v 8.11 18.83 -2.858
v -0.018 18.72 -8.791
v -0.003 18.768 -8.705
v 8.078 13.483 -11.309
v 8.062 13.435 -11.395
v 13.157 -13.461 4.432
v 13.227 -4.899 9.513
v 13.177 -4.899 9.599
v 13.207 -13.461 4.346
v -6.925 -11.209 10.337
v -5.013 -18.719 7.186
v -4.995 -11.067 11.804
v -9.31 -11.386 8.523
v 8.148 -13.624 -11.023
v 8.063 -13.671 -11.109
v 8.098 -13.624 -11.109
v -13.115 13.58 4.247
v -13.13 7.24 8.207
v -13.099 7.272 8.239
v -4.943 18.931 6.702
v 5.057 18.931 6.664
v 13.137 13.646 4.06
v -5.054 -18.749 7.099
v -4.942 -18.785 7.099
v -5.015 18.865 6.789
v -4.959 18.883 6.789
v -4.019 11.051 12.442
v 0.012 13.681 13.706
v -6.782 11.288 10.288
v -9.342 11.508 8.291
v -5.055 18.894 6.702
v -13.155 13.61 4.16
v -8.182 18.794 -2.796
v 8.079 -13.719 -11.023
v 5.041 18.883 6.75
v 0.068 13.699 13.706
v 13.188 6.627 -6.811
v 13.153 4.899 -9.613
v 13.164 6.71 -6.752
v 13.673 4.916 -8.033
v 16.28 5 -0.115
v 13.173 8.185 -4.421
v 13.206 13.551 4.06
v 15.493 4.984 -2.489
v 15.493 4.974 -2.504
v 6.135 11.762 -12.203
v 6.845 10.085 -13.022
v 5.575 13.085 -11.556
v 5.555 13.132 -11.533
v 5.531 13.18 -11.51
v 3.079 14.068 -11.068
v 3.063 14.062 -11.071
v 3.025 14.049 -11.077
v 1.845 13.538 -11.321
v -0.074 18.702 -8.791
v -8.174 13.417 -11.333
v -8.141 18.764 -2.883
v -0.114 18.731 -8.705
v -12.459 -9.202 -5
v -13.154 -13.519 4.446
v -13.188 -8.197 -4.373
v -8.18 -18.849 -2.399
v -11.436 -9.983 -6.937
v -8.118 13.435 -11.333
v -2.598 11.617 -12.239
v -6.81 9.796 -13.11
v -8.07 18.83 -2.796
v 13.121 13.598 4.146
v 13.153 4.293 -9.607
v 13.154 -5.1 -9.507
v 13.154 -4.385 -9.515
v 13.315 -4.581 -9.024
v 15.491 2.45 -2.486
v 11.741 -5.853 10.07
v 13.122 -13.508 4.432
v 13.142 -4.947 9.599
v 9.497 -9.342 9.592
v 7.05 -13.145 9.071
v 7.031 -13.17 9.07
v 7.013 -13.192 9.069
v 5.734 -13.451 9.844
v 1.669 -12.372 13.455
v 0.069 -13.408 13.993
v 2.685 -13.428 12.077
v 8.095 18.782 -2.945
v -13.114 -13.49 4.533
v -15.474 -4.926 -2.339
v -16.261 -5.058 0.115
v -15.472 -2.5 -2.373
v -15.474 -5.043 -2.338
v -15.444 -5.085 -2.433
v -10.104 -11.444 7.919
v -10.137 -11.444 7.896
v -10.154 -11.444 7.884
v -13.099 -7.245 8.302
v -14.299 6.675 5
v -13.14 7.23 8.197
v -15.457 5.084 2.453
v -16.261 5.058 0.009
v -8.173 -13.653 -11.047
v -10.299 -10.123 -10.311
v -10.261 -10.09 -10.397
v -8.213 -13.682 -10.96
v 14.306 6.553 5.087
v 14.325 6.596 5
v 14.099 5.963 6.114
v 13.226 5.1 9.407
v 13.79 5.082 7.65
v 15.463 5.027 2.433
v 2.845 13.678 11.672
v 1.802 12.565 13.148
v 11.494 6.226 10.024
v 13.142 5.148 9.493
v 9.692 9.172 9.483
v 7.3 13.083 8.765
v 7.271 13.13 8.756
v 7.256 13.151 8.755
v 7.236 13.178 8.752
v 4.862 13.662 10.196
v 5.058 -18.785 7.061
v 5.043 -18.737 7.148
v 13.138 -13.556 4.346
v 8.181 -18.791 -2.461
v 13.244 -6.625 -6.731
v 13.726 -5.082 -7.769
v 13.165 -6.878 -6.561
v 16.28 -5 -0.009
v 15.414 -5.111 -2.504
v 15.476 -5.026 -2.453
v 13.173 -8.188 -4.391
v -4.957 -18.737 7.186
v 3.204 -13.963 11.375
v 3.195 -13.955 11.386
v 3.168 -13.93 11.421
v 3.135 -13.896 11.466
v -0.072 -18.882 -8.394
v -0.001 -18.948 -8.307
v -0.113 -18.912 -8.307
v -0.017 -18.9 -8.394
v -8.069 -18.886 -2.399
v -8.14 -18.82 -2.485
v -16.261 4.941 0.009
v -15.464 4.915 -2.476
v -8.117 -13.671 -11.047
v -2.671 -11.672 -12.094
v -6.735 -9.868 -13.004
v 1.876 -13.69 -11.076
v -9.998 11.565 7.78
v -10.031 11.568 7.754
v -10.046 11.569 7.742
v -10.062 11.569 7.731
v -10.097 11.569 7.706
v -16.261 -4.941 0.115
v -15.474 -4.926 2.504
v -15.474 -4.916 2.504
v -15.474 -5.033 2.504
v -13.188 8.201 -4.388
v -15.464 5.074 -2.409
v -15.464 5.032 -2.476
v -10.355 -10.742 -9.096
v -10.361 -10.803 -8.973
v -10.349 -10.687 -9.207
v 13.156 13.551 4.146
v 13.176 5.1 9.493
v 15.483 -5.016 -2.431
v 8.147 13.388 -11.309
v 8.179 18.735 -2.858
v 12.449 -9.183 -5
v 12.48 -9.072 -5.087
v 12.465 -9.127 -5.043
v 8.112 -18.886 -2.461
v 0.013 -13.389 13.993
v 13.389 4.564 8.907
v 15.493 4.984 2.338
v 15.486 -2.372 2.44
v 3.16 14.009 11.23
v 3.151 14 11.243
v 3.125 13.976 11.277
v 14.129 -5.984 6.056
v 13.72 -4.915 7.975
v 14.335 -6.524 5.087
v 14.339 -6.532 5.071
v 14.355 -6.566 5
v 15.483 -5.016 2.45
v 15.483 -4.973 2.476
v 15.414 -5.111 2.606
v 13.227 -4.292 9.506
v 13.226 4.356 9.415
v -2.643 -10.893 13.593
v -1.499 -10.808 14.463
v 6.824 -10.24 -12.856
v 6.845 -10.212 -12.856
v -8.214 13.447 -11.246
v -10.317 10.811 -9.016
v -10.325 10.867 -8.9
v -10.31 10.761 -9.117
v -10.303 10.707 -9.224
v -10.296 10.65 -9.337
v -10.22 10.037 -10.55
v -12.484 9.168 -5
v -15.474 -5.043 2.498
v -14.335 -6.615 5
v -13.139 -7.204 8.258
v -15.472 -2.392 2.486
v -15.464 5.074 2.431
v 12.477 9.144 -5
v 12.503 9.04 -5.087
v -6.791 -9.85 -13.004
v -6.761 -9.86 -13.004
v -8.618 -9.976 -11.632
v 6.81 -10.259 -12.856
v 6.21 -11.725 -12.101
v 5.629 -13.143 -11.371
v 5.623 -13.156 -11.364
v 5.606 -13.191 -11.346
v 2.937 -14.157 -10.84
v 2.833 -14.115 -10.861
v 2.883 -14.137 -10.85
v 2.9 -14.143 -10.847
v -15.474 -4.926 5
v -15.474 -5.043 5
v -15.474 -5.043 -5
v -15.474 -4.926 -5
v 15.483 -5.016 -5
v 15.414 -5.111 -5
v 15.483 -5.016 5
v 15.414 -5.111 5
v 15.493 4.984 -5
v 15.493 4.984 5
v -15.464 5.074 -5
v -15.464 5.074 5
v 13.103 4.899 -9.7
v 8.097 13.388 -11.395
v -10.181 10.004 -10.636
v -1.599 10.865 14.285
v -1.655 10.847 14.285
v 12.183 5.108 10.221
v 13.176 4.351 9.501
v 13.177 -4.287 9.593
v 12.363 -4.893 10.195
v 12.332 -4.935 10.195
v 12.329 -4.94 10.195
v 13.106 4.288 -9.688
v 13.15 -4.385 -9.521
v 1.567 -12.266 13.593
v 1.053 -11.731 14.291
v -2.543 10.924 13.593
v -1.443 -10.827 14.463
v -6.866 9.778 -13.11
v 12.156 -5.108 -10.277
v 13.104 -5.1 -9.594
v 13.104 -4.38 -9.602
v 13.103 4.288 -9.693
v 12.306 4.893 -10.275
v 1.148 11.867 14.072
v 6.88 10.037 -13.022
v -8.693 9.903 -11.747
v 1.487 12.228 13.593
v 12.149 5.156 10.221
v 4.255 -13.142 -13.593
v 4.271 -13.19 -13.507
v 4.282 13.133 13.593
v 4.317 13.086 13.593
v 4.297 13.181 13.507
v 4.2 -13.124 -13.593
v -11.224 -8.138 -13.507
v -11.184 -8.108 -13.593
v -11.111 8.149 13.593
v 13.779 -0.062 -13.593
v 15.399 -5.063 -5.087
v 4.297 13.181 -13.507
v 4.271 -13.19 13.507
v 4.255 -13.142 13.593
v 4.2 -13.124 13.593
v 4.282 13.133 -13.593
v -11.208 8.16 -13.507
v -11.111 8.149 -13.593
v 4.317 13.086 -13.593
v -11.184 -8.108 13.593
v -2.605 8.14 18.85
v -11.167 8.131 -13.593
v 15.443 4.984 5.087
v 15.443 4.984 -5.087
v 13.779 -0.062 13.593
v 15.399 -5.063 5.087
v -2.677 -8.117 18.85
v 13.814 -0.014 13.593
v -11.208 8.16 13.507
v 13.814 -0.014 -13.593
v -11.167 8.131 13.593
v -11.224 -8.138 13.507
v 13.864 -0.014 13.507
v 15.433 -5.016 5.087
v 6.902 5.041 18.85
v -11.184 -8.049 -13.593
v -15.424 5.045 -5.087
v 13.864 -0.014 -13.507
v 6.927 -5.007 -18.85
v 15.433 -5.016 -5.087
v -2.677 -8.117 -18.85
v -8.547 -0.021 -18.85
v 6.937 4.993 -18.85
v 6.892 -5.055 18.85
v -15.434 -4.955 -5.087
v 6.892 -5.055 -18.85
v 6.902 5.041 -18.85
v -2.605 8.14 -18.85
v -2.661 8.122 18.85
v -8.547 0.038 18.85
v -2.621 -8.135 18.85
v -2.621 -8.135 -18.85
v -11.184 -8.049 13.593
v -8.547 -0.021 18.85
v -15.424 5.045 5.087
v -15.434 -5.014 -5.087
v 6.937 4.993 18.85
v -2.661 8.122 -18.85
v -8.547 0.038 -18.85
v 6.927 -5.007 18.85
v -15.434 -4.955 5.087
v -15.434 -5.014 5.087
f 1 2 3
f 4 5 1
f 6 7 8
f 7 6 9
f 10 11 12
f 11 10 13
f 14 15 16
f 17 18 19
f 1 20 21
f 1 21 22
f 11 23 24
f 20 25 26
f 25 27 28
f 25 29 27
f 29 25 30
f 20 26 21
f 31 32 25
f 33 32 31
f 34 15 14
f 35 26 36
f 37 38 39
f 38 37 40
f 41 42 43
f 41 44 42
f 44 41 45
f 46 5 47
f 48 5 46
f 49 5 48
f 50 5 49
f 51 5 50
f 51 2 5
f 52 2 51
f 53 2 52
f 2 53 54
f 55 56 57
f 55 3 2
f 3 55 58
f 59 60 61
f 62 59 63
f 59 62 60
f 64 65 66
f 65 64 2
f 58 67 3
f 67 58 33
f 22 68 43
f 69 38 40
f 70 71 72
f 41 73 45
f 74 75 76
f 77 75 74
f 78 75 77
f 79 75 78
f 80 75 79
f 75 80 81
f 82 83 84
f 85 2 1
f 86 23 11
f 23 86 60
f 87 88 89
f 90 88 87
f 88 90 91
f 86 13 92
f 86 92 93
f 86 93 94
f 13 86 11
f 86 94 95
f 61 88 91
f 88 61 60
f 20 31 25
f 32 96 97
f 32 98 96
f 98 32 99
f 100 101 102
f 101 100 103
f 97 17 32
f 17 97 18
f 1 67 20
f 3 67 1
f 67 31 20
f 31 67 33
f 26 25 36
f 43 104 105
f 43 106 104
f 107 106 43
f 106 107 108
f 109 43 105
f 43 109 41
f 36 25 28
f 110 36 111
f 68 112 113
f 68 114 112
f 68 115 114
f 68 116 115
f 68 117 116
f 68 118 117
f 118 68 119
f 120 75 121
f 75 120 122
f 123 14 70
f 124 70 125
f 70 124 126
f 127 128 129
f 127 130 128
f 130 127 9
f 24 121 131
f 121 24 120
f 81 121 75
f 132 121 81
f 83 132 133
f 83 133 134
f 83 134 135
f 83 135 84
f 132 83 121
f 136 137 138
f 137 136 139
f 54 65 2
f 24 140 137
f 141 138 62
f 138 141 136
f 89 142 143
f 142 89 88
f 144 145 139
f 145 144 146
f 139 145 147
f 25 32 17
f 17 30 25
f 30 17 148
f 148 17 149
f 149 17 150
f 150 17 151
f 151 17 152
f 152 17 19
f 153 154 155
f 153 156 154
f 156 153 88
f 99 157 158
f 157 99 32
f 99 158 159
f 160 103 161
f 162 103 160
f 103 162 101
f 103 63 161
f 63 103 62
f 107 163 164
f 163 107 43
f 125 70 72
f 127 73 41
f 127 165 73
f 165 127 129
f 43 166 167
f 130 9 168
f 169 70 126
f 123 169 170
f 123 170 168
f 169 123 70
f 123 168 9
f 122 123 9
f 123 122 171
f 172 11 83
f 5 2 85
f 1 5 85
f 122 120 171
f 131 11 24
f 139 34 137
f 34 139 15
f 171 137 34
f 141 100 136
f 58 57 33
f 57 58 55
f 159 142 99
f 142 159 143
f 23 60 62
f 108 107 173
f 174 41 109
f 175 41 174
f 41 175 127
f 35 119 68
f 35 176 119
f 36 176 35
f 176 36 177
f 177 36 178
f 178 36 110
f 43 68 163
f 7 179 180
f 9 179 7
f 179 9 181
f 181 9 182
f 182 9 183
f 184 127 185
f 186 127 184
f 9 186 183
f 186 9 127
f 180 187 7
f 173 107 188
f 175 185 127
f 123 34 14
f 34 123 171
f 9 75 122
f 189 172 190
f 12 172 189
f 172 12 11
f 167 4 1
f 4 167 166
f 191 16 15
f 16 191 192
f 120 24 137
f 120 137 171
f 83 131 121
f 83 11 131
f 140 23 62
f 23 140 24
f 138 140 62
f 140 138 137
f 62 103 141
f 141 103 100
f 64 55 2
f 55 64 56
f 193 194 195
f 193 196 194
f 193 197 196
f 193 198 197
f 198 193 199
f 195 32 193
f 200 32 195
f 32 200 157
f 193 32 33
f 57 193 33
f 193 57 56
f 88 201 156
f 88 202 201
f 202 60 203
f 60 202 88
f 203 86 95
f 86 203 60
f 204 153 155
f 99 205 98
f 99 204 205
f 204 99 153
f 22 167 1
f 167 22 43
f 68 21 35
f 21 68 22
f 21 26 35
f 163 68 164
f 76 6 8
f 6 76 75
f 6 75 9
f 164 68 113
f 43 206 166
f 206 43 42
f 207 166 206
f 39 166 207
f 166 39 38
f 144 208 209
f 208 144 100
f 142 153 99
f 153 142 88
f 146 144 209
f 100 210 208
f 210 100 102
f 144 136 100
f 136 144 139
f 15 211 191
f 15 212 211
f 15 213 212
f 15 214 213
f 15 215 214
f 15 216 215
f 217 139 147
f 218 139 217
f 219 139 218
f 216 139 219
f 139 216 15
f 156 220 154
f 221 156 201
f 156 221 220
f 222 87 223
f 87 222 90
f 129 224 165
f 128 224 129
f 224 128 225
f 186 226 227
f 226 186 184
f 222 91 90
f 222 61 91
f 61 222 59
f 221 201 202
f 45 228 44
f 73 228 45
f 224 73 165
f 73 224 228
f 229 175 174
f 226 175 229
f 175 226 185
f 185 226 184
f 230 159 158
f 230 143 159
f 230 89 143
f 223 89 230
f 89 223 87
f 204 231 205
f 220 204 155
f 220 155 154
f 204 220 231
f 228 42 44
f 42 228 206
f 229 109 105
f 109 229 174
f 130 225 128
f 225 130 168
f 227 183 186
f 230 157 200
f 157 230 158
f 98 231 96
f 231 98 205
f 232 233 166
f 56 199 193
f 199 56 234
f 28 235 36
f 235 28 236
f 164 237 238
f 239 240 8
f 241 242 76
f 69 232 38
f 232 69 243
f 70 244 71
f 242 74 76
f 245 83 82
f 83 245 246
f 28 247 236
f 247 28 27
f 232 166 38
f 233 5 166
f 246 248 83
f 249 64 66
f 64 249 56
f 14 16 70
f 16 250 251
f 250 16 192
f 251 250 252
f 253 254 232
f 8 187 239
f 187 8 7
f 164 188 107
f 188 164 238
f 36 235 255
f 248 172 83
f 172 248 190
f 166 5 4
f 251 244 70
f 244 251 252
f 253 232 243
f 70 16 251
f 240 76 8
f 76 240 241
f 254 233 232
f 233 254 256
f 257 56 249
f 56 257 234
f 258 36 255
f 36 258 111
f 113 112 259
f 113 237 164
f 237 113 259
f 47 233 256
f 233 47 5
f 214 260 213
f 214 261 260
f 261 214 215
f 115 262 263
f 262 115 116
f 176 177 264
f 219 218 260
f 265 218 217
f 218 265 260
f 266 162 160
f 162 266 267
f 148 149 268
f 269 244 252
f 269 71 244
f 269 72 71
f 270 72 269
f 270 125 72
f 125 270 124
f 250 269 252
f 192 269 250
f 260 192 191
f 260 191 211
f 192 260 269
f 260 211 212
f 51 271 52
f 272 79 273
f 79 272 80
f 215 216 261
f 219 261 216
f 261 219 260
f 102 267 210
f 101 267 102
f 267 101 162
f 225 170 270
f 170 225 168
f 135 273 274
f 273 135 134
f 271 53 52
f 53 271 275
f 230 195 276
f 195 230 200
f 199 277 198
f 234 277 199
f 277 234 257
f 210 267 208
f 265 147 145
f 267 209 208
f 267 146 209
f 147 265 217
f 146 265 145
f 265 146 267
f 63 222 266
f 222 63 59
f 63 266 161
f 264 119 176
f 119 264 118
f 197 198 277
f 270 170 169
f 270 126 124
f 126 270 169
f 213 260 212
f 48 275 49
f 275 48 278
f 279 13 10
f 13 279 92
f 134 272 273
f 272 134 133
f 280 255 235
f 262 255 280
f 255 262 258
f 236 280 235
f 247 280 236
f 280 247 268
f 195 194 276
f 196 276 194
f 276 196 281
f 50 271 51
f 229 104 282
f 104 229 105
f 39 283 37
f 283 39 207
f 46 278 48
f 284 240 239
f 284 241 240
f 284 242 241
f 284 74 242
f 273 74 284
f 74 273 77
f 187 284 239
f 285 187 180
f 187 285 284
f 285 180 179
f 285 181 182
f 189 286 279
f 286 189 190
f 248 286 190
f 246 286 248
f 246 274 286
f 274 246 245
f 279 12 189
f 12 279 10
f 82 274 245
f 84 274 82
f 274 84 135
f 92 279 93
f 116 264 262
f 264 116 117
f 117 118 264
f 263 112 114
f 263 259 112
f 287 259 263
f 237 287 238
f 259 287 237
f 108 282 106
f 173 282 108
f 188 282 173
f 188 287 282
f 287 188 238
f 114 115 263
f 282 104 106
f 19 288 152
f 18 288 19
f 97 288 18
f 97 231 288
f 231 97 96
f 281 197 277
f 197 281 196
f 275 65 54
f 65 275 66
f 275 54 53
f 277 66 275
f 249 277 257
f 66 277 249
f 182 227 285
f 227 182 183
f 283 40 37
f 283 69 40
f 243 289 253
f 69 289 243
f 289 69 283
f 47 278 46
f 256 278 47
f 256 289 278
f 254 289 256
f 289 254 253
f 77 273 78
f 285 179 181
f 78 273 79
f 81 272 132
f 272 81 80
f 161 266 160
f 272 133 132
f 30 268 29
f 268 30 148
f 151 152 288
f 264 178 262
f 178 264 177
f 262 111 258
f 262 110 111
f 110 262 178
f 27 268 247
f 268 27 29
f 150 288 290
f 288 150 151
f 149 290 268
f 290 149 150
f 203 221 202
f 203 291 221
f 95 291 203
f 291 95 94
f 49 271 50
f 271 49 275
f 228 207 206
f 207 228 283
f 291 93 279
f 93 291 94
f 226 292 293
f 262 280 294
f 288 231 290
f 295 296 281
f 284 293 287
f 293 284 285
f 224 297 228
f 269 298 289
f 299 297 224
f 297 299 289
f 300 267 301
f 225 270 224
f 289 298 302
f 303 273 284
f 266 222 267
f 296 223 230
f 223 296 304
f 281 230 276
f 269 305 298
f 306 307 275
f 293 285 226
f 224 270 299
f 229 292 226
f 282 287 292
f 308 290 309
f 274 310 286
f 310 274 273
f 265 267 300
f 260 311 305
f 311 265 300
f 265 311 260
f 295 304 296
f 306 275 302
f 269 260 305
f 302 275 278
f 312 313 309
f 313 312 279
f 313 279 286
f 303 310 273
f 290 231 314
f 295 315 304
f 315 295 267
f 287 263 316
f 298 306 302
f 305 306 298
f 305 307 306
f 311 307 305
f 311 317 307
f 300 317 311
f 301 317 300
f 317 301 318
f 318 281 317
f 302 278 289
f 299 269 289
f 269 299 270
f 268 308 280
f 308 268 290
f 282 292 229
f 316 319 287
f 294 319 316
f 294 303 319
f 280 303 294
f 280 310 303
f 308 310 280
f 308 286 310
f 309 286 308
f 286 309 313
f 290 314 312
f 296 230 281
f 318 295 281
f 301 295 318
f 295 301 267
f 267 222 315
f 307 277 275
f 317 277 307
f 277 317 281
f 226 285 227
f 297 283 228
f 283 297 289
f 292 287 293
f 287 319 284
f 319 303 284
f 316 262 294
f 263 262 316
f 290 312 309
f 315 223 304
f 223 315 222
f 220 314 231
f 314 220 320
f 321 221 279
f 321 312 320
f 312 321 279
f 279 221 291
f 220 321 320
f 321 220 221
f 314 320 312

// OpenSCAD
// Auto-generated OpenSCAD file

    inner_points = 10*[[-0.0016418331040251556, -1.6180331557585415, -0.5000000000000097], [-0.0016418331038291958, -1.6180331557585472, 0.49999999999999034], [0.0016418331038291958, 1.6180331557585472, -0.49999999999999034], [0.0016418331040251556, 1.6180331557585415, 0.5000000000000097], [-0.952384297558225, -1.3080512751855717, -0.4999999999998215], [-0.9523842975580289, -1.3080512751855777, 0.5000000000001786], [0.94972775579202, -1.3099813657559998, -0.5000000000001942], [0.949727755792216, -1.3099813657560058, 0.4999999999998058], [-0.949727755792216, 1.3099813657560058, -0.4999999999998058], [-0.94972775579202, 1.3099813657559998, 0.5000000000001942], [0.9523842975580289, 1.3080512751855777, -0.5000000000001786], [0.952384297558225, 1.3080512751855717, 0.4999999999998215], [-1.5393483306969136, -0.4984382665193544, -0.49999999999970146], [-1.5393483306967177, -0.4984382665193606, 0.5000000000002985], [1.5383336220346362, -0.5015612186636724, -0.5000000000003045], [1.538333622034832, -0.5015612186636786, 0.49999999999969547], [-1.538333622034832, 0.5015612186636786, -0.49999999999969547], [-1.5383336220346362, 0.5015612186636724, 0.5000000000003045], [1.5393483306967177, 0.4984382665193606, -0.5000000000002985], [1.5393483306969136, 0.4984382665193544, 0.49999999999970146], [-0.2636863372842498, -0.808749845922564, -1.876381920471127], [-0.26368633728351437, -0.8087498459225871, 1.8763819204712202], [-0.2620445041803226, 0.8092833098359803, -1.8763819204711172], [-0.2620445041795872, 0.8092833098359572, 1.87638192047123], [0.6876832516117953, -0.5006980559200224, -1.8763819204713112], [0.6876832516125307, -0.5006980559200455, 1.876381920471036], [0.6886979602738771, 0.49930142926301074, -1.8763819204713055], [0.6886979602746125, 0.49930142926298754, 1.8763819204710417], [-0.8506503704229385, 0.0008631627436532224, -1.8763819204710068], [-0.850650370422203, 0.0008631627436300636, 1.8763819204713403], [0.42399691432801623, -1.3094479018426013, -1.350650808352131], [0.4239969143285456, -1.309447901842618, 1.3506508083519488], [0.42665345609402516, 1.3085847390989762, -1.3506508083521154], [0.4266534560945545, 1.3085847390989596, 1.3506508083519644], [-1.1143367077067177, -0.8078866831789255, -1.3506508083518265], [-1.1143367077061885, -0.8078866831789423, 1.3506508083522533], [-1.1126948746027905, 0.8101464725796188, -1.3506508083518167], [-1.1126948746022614, 0.810146472579602, 1.350650808352263], [1.3763812118861432, -0.0013966266570264558, -1.3506508083523097], [1.3763812118866725, -0.0013966266570431258, 1.35065080835177]];

    outer_points = 10*[[1.6180016504227956, 0.49997195375907766, -0.011519263576068448], [1.618042389272906, -0.49997195375907766, -0.0009277501021131744], [-1.618042389272906, 0.49997195375907766, 0.0009277501021131744], [-1.6180016504227956, -0.49997195375907766, 0.011519263576068448], [1.3053290615582724, 0.4898987513388698, -0.961326813959702], [1.3053698004083825, -0.5100451561792856, -0.9507353004857466], [1.312644822251197, 0.5100451561792856, 0.9406654548908802], [1.312685561101307, -0.4898987513388698, 0.9512569683648355], [-1.312685561101307, 0.4898987513388698, -0.9512569683648355], [-1.312644822251197, -0.5100451561792856, -0.9406654548908802], [-1.3053698004083825, 0.5100451561792856, 0.9507353004857466], [-1.3053290615582724, -0.4898987513388698, 0.961326813959702], [0.494057357253453, 0.4836731698676236, -1.5459629947847504], [0.49409809610356314, -0.5162707376505317, -1.5353714813107953], [0.5058945067081656, 0.5162707376505317, 1.5315251425550196], [0.5059352455582757, -0.4836731698676236, 1.5421166560289747], [-0.5059352455582757, 0.4836731698676236, -1.5421166560289747], [-0.5058945067081656, -0.5162707376505317, -1.5315251425550196], [-0.49409809610356314, 0.5162707376505317, 1.5353714813107953], [-0.494057357253453, -0.4836731698676236, 1.5459629947847504], [0.8079235550197118, 1.8734925048785318, -0.28583434473369956], [0.8080764383033266, -1.8790608342261998, -0.24608689594778654], [-0.810098464828139, 1.8734925048785318, -0.2796108378946088], [-0.8099455815445241, -1.8790608342261998, -0.23986338910869576], [0.5025667268481131, 1.8835657072987397, 0.6663503737332491], [0.5027196101317281, -1.868987631805992, 0.7060978225191622], [-0.49742587596361565, 1.8835657072987397, 0.6701967124890246], [-0.49727299268000075, -1.868987631805992, 0.7099441612749376], [-0.0033481492851075404, 1.8672669234072858, -0.8704705255587479], [-0.003195266001492647, -1.8852864156974458, -0.8307230767728349], [1.3105881411906073, 1.355079920068634, 0.4059580415501933], [1.3106981891122724, -1.3460701739235539, 0.4345689140207317], [-1.3074264814689722, 1.355079920068634, 0.41602788714505967], [-1.307316433547307, -1.3460701739235539, 0.44463875961559807], [0.8046732650573866, 1.33878113617718, -1.130862857741804], [0.8047833129790517, -1.362368957815008, -1.1022519852712656], [-0.8133487547904642, 1.33878113617718, -1.124639350902713], [-0.8132387068687991, -1.362368957815008, -1.0960284784321745], [0.00523871020727978, 1.365153122488842, 1.3619890987729175], [0.005348758128944959, -1.335996971503346, 1.390599971243456]];

    // Convex hull for inner set (I)
    module inner_hull() {
        hull() {
            for (p = inner_points) {
                translate(p) sphere(r=0.1);
            }
        }
    }

    // Convex hull for outer set (O) minus inner hull (O \ I)
    module outer_minus_inner() {
        difference() {
            hull() {
                for (p = outer_points) {
                    translate(p) sphere(r=0.1);
                }
            }
            inner_hull(); // Subtract inner hull
        }
    }

    // Convex hull for outer set (O) minus all translated inner hulls
    module outer_minus_AllTranslationInner() {
        difference() {
            hull() {
                for (p = outer_points) {
                    translate(p) sphere(r=0.1);
                }
            }
            hull() {
                translate([0,0,50]) inner_hull();
                translate([0,0,-50]) inner_hull();
            }; // Subtract translated inner hulls
        }
    }

    // Difference between outer_minus_inner and outer_minus_AllTranslationInner
    module outer_minus_inner_diff() {
        difference() {
            // Outer minus inner
            difference() {
                hull() {
                    for (p = outer_points) {
                        translate(p) sphere(r=0.1);
                    }
                }
                inner_hull();
            }

            // Subtract Outer minus AllTranslationInner
            difference() {
                hull() {
                    for (p = outer_points) {
                        translate(p) sphere(r=0.1);
                    }
                }
                hull() {
                    translate([0,0,50]) inner_hull();
                    translate([0,0,-50]) inner_hull();
                };
            }
        }
    }

    // Rendering all with colors applied
    color([1, 0, 0, 0.5]) inner_hull(); // Transparent red
    color([0, 1, 0, 1]) outer_minus_AllTranslationInner(); // Opaque green
    color([1, 1, 0, 1]) outer_minus_inner_diff(); // Opaque yellow
    
